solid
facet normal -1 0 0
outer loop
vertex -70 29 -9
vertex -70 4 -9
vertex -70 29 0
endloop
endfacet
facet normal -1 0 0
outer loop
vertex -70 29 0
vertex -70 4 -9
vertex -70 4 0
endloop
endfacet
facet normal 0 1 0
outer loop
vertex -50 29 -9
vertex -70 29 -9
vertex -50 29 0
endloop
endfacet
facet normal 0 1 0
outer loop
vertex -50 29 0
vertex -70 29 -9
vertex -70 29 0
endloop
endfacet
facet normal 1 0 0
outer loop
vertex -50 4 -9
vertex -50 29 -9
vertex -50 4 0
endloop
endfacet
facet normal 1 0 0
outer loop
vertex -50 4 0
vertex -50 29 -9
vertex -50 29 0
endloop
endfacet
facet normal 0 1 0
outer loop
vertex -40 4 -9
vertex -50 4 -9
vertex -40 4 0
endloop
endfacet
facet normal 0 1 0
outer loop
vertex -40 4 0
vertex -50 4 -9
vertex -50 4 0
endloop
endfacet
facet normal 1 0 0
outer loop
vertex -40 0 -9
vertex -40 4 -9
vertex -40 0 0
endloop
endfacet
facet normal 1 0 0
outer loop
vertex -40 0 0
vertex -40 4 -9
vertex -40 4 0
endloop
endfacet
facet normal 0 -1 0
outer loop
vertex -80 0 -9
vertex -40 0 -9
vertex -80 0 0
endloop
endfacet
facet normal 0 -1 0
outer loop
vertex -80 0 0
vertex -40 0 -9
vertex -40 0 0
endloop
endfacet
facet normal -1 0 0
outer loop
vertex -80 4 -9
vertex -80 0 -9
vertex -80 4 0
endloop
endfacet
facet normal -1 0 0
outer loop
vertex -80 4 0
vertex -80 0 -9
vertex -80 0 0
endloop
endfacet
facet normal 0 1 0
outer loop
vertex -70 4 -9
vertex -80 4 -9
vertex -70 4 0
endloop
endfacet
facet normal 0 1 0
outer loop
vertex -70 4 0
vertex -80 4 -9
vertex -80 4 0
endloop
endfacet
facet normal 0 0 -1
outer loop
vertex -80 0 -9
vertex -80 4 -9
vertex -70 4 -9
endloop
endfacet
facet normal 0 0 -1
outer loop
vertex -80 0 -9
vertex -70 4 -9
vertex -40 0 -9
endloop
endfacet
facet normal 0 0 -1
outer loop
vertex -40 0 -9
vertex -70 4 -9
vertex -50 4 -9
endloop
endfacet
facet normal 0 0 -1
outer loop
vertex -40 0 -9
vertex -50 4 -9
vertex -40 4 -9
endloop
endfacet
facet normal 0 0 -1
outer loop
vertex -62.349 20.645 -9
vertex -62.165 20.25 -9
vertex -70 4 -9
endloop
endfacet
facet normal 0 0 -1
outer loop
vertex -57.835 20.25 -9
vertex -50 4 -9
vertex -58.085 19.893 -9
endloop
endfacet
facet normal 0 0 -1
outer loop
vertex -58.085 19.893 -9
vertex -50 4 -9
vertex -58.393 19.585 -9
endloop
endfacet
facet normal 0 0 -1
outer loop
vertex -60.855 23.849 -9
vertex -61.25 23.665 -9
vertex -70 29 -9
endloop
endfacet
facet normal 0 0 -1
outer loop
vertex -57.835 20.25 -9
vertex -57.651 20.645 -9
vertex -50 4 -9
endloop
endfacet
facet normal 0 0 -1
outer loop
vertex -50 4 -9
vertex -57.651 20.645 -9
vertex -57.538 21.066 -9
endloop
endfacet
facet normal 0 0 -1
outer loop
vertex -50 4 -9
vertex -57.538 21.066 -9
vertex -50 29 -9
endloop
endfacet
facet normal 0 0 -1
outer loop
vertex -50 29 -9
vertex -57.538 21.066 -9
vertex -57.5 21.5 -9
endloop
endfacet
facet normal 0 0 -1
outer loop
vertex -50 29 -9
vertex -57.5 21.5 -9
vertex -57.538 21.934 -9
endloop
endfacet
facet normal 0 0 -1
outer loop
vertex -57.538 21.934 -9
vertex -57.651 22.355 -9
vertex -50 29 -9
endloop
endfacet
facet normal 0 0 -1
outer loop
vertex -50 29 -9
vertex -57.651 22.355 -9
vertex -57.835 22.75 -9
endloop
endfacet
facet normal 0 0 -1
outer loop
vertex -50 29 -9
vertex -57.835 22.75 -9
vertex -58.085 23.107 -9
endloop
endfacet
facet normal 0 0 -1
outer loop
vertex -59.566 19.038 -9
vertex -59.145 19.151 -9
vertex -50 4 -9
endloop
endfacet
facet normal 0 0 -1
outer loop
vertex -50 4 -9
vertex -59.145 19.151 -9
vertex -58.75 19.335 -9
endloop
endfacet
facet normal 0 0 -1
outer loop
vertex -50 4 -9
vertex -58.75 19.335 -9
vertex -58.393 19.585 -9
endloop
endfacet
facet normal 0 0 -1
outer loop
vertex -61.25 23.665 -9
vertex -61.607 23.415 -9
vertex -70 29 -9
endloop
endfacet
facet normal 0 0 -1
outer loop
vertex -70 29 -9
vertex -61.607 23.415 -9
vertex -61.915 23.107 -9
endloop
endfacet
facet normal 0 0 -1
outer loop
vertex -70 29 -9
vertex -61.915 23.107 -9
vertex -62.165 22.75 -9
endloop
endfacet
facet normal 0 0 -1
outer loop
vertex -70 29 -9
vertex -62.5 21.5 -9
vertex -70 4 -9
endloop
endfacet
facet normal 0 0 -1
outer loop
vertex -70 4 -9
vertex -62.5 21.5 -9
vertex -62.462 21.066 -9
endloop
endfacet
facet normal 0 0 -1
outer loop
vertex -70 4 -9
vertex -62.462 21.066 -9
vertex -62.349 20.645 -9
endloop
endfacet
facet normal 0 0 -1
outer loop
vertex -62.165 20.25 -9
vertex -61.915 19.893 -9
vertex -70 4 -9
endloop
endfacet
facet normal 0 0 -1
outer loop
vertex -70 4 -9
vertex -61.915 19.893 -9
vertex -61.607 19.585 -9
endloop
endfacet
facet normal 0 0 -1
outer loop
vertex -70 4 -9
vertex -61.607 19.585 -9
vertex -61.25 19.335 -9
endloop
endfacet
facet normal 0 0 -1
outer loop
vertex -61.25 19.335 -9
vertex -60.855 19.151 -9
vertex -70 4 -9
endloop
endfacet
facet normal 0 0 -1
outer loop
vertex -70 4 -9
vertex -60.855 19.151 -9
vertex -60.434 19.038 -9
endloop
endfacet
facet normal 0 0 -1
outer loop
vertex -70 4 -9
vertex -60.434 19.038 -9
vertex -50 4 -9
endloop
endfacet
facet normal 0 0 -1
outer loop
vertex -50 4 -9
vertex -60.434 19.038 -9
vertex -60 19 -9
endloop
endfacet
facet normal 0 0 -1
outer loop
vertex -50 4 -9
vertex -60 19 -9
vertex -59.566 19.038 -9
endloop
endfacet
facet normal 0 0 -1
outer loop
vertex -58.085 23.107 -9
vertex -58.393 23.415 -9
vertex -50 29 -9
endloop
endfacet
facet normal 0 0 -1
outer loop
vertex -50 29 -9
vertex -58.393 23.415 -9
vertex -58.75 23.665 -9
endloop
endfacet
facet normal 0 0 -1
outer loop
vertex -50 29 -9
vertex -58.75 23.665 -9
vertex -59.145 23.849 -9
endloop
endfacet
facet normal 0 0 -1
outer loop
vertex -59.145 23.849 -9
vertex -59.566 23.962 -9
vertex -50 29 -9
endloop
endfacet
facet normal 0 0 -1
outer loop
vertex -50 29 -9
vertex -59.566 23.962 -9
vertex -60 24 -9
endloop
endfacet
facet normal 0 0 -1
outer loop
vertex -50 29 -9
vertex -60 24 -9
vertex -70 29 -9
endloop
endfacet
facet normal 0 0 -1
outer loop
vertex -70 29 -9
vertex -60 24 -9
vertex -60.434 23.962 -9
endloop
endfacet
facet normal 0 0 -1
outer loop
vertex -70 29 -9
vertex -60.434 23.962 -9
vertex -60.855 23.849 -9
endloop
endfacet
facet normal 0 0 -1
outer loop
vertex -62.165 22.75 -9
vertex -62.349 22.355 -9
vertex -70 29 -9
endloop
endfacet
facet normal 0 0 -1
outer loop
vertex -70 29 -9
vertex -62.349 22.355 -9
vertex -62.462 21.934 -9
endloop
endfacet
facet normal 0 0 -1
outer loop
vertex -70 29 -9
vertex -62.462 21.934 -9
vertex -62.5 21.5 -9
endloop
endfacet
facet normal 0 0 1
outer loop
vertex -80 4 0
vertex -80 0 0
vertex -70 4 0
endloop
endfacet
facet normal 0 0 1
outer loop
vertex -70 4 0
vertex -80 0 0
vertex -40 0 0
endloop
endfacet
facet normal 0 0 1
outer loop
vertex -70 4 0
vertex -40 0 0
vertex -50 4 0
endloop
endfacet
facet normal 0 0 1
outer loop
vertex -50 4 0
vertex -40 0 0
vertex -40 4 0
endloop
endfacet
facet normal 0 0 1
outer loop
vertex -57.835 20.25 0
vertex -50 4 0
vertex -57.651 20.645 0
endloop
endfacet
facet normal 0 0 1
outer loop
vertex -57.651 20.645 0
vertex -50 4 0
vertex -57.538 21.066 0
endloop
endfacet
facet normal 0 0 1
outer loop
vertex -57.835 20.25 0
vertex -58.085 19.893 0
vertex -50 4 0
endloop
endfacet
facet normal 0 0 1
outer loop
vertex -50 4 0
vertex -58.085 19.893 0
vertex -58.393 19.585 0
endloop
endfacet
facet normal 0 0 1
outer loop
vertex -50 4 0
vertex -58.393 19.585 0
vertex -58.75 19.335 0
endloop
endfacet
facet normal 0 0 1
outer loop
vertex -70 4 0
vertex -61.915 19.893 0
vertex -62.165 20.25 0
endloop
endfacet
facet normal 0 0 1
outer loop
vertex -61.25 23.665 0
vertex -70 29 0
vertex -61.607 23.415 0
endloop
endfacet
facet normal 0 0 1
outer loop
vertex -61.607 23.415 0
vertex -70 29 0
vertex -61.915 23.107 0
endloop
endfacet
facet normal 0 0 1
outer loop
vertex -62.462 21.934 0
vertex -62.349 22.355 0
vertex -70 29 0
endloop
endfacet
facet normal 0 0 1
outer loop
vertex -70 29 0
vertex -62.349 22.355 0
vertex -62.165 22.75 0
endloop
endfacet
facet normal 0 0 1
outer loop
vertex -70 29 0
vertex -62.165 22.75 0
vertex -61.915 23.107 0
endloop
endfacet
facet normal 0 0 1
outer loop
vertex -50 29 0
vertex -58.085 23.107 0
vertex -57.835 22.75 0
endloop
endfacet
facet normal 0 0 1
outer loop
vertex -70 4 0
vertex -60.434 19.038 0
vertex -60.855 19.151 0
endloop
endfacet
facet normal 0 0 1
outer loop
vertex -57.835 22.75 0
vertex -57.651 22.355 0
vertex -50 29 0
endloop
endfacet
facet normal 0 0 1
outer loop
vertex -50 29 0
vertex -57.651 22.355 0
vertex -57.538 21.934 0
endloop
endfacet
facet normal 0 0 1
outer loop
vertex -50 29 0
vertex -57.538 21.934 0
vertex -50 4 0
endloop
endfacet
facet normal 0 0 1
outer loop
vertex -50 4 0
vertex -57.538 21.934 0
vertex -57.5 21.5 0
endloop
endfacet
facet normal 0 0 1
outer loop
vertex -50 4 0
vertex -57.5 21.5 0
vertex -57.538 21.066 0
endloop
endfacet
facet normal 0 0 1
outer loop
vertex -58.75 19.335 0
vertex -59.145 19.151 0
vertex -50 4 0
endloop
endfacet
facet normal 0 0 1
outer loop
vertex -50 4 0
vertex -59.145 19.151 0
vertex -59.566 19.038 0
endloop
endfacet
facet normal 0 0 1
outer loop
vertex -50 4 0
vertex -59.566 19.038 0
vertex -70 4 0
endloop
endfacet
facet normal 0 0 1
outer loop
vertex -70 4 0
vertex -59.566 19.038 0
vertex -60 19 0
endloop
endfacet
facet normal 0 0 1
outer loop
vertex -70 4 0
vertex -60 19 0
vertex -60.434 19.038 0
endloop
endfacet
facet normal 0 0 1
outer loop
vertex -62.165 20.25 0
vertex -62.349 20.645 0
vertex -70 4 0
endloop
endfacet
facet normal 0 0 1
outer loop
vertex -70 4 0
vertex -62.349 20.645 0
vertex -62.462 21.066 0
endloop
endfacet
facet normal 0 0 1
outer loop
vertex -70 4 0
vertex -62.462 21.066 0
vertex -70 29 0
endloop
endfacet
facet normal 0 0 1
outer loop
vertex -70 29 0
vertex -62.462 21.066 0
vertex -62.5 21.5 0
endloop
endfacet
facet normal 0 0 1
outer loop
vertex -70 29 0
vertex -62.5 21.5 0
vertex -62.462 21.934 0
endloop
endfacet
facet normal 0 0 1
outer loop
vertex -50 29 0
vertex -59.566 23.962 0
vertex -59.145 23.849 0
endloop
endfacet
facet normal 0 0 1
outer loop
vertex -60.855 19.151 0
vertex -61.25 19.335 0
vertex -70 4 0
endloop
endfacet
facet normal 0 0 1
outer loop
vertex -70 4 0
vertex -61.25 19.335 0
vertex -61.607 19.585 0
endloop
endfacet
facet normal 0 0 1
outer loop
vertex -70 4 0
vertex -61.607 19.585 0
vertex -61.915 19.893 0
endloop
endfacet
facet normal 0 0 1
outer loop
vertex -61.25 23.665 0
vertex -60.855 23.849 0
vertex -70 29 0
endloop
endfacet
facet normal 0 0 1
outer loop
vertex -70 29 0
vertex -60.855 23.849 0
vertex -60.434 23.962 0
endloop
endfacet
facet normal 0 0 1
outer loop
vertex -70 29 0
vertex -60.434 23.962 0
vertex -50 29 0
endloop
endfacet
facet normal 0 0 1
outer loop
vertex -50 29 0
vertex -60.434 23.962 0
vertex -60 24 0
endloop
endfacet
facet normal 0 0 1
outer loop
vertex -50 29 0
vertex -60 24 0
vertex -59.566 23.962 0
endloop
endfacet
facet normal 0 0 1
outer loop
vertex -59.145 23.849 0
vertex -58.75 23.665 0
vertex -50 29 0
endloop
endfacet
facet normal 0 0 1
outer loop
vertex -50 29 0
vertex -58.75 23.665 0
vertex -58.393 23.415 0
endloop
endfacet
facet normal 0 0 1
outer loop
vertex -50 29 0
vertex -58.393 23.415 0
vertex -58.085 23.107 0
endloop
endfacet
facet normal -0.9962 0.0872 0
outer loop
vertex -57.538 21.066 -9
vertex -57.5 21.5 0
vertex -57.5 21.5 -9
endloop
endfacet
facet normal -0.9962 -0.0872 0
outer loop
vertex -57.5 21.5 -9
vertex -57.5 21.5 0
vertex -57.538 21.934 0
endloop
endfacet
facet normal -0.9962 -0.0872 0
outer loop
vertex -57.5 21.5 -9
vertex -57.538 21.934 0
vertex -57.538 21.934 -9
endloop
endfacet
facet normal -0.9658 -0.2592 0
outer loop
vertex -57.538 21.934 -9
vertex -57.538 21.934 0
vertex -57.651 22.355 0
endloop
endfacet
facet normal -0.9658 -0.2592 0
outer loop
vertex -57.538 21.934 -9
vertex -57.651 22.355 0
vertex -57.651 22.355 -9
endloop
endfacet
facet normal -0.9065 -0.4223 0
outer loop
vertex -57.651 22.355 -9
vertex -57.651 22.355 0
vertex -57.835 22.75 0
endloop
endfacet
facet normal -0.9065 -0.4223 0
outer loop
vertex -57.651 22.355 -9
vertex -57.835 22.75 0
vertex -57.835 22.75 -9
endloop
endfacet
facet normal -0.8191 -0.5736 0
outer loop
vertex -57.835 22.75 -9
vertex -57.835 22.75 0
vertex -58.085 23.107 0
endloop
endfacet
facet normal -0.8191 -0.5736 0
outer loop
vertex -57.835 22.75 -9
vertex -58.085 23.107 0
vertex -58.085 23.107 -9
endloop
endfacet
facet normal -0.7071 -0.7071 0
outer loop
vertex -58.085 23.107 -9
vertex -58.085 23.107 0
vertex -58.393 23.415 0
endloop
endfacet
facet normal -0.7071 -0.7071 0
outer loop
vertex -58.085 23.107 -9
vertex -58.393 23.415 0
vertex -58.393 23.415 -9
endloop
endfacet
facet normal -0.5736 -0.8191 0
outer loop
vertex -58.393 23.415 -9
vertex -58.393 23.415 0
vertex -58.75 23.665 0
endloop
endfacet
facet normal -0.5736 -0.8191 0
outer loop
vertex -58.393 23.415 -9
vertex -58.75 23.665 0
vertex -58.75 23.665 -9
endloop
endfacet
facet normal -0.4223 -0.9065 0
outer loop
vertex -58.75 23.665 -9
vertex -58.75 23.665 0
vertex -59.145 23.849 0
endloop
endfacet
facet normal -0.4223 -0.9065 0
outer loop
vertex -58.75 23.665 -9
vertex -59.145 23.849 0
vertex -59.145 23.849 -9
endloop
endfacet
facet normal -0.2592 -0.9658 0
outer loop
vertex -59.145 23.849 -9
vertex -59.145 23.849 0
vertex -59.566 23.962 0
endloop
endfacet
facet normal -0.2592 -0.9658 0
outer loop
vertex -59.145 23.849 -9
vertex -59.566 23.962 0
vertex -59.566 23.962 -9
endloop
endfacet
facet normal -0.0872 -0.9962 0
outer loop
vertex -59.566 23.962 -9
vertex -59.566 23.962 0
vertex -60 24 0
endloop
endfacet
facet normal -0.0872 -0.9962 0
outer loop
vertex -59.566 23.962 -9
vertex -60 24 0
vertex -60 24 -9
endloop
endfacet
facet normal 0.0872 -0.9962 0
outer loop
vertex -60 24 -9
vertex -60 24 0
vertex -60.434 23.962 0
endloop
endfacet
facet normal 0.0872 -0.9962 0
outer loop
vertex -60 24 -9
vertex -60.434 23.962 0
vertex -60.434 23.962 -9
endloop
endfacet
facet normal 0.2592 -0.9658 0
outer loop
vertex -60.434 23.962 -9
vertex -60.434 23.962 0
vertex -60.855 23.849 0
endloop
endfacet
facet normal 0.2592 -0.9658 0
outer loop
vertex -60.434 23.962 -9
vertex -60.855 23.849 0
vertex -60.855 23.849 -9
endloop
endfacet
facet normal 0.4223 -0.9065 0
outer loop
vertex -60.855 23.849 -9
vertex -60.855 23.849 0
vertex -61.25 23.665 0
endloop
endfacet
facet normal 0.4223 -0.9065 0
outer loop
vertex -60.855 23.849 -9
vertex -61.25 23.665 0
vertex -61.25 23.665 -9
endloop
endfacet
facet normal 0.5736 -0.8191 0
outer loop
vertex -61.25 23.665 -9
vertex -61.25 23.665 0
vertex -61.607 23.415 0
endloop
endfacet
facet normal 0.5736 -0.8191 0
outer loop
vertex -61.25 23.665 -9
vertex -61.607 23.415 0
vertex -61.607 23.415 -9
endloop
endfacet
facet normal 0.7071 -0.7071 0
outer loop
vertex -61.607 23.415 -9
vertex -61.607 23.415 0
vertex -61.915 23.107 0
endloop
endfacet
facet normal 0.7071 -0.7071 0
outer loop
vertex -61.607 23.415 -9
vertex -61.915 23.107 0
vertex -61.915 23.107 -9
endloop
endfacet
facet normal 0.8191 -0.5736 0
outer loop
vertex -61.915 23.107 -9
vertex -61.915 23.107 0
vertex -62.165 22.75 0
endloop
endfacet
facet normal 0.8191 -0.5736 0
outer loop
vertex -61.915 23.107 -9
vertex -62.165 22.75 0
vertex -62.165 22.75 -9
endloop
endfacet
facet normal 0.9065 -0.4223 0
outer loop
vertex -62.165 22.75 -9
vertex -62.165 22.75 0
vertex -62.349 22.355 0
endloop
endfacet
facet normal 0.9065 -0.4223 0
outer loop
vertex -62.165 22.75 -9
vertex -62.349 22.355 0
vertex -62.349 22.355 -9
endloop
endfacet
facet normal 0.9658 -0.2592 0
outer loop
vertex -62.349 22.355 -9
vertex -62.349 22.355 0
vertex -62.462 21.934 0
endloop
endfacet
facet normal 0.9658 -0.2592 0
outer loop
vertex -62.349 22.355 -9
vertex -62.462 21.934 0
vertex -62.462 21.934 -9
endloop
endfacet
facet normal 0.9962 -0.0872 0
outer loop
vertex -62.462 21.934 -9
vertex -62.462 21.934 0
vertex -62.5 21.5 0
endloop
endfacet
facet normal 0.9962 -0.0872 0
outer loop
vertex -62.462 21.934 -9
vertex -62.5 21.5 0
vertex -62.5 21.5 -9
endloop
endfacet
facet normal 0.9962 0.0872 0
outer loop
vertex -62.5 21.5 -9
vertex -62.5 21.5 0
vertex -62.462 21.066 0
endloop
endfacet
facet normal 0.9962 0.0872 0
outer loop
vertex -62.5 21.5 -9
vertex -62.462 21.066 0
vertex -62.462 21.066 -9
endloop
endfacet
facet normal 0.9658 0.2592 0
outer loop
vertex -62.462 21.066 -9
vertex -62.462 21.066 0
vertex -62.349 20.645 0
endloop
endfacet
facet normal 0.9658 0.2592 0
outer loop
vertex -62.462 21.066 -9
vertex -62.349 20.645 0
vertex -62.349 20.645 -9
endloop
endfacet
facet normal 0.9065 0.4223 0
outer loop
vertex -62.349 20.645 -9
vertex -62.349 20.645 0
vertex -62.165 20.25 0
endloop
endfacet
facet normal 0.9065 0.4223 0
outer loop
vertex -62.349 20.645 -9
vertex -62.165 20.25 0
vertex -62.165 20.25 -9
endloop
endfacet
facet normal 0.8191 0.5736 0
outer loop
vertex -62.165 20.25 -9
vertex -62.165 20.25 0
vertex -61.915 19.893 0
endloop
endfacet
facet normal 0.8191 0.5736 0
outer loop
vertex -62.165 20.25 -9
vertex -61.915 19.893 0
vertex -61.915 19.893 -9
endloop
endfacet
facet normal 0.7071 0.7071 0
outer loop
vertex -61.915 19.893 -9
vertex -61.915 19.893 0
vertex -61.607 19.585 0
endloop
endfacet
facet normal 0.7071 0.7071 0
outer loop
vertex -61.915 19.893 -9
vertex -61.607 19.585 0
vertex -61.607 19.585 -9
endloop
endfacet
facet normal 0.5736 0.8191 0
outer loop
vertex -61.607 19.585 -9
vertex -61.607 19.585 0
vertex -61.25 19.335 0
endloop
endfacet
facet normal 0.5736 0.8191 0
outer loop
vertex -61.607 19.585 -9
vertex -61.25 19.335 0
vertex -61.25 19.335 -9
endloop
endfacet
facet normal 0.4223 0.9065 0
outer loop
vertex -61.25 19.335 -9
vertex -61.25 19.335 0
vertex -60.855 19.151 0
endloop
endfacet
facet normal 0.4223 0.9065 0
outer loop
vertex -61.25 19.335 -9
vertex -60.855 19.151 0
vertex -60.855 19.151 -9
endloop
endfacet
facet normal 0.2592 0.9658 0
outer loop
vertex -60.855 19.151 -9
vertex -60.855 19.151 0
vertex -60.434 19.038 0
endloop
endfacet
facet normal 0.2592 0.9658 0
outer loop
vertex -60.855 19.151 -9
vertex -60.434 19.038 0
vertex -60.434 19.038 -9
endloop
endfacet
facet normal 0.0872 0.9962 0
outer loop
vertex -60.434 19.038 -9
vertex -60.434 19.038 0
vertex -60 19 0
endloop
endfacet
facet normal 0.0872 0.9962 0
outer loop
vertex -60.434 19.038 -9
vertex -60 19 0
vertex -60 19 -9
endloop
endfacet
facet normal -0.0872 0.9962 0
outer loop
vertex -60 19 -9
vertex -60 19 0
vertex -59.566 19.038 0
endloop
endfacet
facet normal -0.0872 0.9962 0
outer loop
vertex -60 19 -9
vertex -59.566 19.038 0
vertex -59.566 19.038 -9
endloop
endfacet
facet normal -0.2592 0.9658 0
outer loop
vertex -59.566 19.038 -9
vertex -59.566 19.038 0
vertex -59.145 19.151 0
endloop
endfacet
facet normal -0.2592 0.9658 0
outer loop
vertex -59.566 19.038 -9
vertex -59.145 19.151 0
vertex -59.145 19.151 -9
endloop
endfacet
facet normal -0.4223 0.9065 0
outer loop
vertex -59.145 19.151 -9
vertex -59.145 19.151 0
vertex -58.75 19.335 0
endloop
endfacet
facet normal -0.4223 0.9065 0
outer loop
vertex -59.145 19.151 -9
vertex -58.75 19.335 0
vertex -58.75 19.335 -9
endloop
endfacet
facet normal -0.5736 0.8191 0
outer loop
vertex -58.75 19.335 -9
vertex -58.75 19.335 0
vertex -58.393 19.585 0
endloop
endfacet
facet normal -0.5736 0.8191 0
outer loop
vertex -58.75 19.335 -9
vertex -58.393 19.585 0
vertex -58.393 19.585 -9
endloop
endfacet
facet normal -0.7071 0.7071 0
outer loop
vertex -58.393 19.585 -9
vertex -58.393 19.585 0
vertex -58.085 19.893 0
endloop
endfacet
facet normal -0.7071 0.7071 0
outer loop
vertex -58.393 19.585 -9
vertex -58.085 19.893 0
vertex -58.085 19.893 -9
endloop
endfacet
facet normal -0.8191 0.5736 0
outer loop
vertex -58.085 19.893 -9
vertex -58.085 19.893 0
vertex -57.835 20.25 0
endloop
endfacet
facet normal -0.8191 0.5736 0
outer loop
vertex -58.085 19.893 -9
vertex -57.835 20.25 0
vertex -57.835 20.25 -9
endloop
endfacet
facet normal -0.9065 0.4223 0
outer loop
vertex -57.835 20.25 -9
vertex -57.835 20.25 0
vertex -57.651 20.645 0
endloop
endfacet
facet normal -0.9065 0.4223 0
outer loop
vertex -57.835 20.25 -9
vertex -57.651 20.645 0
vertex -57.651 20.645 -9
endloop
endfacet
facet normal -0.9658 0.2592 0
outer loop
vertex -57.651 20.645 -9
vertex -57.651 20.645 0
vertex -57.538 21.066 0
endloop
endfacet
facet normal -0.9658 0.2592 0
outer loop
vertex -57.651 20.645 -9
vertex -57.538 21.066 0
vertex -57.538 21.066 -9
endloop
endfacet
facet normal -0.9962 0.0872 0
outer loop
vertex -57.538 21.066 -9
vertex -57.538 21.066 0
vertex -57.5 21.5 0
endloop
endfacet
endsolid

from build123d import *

# Parameters (mm, degrees)
BOSS_EXTRU_2_DEPTH      = 9
ESQUISSE1_4_R           = 2.5
ENL_V_MAT_EXTRU_6_DEPTH = 86.568685861


with BuildPart() as part:
    # Esquisse1 → Boss.-Extru.2 (new body)
    with BuildSketch(Plane.XY):
        Polygon((-40, 0), (-80, 0), (-80, 4), (-70, 4), (-70, 29), (-50, 29), (-50, 4), (-40, 4), align=None)
    extrude(amount=-BOSS_EXTRU_2_DEPTH)

    # Esquisse1<4> → Enlèv. mat.-Extru.6 (cut, through all)
    with BuildSketch(Plane.XY):
        with Locations((-60, 21.5)):
            Circle(ESQUISSE1_4_R)
    extrude(amount=-ENL_V_MAT_EXTRU_6_DEPTH, mode=Mode.SUBTRACT)


solid = part.part
